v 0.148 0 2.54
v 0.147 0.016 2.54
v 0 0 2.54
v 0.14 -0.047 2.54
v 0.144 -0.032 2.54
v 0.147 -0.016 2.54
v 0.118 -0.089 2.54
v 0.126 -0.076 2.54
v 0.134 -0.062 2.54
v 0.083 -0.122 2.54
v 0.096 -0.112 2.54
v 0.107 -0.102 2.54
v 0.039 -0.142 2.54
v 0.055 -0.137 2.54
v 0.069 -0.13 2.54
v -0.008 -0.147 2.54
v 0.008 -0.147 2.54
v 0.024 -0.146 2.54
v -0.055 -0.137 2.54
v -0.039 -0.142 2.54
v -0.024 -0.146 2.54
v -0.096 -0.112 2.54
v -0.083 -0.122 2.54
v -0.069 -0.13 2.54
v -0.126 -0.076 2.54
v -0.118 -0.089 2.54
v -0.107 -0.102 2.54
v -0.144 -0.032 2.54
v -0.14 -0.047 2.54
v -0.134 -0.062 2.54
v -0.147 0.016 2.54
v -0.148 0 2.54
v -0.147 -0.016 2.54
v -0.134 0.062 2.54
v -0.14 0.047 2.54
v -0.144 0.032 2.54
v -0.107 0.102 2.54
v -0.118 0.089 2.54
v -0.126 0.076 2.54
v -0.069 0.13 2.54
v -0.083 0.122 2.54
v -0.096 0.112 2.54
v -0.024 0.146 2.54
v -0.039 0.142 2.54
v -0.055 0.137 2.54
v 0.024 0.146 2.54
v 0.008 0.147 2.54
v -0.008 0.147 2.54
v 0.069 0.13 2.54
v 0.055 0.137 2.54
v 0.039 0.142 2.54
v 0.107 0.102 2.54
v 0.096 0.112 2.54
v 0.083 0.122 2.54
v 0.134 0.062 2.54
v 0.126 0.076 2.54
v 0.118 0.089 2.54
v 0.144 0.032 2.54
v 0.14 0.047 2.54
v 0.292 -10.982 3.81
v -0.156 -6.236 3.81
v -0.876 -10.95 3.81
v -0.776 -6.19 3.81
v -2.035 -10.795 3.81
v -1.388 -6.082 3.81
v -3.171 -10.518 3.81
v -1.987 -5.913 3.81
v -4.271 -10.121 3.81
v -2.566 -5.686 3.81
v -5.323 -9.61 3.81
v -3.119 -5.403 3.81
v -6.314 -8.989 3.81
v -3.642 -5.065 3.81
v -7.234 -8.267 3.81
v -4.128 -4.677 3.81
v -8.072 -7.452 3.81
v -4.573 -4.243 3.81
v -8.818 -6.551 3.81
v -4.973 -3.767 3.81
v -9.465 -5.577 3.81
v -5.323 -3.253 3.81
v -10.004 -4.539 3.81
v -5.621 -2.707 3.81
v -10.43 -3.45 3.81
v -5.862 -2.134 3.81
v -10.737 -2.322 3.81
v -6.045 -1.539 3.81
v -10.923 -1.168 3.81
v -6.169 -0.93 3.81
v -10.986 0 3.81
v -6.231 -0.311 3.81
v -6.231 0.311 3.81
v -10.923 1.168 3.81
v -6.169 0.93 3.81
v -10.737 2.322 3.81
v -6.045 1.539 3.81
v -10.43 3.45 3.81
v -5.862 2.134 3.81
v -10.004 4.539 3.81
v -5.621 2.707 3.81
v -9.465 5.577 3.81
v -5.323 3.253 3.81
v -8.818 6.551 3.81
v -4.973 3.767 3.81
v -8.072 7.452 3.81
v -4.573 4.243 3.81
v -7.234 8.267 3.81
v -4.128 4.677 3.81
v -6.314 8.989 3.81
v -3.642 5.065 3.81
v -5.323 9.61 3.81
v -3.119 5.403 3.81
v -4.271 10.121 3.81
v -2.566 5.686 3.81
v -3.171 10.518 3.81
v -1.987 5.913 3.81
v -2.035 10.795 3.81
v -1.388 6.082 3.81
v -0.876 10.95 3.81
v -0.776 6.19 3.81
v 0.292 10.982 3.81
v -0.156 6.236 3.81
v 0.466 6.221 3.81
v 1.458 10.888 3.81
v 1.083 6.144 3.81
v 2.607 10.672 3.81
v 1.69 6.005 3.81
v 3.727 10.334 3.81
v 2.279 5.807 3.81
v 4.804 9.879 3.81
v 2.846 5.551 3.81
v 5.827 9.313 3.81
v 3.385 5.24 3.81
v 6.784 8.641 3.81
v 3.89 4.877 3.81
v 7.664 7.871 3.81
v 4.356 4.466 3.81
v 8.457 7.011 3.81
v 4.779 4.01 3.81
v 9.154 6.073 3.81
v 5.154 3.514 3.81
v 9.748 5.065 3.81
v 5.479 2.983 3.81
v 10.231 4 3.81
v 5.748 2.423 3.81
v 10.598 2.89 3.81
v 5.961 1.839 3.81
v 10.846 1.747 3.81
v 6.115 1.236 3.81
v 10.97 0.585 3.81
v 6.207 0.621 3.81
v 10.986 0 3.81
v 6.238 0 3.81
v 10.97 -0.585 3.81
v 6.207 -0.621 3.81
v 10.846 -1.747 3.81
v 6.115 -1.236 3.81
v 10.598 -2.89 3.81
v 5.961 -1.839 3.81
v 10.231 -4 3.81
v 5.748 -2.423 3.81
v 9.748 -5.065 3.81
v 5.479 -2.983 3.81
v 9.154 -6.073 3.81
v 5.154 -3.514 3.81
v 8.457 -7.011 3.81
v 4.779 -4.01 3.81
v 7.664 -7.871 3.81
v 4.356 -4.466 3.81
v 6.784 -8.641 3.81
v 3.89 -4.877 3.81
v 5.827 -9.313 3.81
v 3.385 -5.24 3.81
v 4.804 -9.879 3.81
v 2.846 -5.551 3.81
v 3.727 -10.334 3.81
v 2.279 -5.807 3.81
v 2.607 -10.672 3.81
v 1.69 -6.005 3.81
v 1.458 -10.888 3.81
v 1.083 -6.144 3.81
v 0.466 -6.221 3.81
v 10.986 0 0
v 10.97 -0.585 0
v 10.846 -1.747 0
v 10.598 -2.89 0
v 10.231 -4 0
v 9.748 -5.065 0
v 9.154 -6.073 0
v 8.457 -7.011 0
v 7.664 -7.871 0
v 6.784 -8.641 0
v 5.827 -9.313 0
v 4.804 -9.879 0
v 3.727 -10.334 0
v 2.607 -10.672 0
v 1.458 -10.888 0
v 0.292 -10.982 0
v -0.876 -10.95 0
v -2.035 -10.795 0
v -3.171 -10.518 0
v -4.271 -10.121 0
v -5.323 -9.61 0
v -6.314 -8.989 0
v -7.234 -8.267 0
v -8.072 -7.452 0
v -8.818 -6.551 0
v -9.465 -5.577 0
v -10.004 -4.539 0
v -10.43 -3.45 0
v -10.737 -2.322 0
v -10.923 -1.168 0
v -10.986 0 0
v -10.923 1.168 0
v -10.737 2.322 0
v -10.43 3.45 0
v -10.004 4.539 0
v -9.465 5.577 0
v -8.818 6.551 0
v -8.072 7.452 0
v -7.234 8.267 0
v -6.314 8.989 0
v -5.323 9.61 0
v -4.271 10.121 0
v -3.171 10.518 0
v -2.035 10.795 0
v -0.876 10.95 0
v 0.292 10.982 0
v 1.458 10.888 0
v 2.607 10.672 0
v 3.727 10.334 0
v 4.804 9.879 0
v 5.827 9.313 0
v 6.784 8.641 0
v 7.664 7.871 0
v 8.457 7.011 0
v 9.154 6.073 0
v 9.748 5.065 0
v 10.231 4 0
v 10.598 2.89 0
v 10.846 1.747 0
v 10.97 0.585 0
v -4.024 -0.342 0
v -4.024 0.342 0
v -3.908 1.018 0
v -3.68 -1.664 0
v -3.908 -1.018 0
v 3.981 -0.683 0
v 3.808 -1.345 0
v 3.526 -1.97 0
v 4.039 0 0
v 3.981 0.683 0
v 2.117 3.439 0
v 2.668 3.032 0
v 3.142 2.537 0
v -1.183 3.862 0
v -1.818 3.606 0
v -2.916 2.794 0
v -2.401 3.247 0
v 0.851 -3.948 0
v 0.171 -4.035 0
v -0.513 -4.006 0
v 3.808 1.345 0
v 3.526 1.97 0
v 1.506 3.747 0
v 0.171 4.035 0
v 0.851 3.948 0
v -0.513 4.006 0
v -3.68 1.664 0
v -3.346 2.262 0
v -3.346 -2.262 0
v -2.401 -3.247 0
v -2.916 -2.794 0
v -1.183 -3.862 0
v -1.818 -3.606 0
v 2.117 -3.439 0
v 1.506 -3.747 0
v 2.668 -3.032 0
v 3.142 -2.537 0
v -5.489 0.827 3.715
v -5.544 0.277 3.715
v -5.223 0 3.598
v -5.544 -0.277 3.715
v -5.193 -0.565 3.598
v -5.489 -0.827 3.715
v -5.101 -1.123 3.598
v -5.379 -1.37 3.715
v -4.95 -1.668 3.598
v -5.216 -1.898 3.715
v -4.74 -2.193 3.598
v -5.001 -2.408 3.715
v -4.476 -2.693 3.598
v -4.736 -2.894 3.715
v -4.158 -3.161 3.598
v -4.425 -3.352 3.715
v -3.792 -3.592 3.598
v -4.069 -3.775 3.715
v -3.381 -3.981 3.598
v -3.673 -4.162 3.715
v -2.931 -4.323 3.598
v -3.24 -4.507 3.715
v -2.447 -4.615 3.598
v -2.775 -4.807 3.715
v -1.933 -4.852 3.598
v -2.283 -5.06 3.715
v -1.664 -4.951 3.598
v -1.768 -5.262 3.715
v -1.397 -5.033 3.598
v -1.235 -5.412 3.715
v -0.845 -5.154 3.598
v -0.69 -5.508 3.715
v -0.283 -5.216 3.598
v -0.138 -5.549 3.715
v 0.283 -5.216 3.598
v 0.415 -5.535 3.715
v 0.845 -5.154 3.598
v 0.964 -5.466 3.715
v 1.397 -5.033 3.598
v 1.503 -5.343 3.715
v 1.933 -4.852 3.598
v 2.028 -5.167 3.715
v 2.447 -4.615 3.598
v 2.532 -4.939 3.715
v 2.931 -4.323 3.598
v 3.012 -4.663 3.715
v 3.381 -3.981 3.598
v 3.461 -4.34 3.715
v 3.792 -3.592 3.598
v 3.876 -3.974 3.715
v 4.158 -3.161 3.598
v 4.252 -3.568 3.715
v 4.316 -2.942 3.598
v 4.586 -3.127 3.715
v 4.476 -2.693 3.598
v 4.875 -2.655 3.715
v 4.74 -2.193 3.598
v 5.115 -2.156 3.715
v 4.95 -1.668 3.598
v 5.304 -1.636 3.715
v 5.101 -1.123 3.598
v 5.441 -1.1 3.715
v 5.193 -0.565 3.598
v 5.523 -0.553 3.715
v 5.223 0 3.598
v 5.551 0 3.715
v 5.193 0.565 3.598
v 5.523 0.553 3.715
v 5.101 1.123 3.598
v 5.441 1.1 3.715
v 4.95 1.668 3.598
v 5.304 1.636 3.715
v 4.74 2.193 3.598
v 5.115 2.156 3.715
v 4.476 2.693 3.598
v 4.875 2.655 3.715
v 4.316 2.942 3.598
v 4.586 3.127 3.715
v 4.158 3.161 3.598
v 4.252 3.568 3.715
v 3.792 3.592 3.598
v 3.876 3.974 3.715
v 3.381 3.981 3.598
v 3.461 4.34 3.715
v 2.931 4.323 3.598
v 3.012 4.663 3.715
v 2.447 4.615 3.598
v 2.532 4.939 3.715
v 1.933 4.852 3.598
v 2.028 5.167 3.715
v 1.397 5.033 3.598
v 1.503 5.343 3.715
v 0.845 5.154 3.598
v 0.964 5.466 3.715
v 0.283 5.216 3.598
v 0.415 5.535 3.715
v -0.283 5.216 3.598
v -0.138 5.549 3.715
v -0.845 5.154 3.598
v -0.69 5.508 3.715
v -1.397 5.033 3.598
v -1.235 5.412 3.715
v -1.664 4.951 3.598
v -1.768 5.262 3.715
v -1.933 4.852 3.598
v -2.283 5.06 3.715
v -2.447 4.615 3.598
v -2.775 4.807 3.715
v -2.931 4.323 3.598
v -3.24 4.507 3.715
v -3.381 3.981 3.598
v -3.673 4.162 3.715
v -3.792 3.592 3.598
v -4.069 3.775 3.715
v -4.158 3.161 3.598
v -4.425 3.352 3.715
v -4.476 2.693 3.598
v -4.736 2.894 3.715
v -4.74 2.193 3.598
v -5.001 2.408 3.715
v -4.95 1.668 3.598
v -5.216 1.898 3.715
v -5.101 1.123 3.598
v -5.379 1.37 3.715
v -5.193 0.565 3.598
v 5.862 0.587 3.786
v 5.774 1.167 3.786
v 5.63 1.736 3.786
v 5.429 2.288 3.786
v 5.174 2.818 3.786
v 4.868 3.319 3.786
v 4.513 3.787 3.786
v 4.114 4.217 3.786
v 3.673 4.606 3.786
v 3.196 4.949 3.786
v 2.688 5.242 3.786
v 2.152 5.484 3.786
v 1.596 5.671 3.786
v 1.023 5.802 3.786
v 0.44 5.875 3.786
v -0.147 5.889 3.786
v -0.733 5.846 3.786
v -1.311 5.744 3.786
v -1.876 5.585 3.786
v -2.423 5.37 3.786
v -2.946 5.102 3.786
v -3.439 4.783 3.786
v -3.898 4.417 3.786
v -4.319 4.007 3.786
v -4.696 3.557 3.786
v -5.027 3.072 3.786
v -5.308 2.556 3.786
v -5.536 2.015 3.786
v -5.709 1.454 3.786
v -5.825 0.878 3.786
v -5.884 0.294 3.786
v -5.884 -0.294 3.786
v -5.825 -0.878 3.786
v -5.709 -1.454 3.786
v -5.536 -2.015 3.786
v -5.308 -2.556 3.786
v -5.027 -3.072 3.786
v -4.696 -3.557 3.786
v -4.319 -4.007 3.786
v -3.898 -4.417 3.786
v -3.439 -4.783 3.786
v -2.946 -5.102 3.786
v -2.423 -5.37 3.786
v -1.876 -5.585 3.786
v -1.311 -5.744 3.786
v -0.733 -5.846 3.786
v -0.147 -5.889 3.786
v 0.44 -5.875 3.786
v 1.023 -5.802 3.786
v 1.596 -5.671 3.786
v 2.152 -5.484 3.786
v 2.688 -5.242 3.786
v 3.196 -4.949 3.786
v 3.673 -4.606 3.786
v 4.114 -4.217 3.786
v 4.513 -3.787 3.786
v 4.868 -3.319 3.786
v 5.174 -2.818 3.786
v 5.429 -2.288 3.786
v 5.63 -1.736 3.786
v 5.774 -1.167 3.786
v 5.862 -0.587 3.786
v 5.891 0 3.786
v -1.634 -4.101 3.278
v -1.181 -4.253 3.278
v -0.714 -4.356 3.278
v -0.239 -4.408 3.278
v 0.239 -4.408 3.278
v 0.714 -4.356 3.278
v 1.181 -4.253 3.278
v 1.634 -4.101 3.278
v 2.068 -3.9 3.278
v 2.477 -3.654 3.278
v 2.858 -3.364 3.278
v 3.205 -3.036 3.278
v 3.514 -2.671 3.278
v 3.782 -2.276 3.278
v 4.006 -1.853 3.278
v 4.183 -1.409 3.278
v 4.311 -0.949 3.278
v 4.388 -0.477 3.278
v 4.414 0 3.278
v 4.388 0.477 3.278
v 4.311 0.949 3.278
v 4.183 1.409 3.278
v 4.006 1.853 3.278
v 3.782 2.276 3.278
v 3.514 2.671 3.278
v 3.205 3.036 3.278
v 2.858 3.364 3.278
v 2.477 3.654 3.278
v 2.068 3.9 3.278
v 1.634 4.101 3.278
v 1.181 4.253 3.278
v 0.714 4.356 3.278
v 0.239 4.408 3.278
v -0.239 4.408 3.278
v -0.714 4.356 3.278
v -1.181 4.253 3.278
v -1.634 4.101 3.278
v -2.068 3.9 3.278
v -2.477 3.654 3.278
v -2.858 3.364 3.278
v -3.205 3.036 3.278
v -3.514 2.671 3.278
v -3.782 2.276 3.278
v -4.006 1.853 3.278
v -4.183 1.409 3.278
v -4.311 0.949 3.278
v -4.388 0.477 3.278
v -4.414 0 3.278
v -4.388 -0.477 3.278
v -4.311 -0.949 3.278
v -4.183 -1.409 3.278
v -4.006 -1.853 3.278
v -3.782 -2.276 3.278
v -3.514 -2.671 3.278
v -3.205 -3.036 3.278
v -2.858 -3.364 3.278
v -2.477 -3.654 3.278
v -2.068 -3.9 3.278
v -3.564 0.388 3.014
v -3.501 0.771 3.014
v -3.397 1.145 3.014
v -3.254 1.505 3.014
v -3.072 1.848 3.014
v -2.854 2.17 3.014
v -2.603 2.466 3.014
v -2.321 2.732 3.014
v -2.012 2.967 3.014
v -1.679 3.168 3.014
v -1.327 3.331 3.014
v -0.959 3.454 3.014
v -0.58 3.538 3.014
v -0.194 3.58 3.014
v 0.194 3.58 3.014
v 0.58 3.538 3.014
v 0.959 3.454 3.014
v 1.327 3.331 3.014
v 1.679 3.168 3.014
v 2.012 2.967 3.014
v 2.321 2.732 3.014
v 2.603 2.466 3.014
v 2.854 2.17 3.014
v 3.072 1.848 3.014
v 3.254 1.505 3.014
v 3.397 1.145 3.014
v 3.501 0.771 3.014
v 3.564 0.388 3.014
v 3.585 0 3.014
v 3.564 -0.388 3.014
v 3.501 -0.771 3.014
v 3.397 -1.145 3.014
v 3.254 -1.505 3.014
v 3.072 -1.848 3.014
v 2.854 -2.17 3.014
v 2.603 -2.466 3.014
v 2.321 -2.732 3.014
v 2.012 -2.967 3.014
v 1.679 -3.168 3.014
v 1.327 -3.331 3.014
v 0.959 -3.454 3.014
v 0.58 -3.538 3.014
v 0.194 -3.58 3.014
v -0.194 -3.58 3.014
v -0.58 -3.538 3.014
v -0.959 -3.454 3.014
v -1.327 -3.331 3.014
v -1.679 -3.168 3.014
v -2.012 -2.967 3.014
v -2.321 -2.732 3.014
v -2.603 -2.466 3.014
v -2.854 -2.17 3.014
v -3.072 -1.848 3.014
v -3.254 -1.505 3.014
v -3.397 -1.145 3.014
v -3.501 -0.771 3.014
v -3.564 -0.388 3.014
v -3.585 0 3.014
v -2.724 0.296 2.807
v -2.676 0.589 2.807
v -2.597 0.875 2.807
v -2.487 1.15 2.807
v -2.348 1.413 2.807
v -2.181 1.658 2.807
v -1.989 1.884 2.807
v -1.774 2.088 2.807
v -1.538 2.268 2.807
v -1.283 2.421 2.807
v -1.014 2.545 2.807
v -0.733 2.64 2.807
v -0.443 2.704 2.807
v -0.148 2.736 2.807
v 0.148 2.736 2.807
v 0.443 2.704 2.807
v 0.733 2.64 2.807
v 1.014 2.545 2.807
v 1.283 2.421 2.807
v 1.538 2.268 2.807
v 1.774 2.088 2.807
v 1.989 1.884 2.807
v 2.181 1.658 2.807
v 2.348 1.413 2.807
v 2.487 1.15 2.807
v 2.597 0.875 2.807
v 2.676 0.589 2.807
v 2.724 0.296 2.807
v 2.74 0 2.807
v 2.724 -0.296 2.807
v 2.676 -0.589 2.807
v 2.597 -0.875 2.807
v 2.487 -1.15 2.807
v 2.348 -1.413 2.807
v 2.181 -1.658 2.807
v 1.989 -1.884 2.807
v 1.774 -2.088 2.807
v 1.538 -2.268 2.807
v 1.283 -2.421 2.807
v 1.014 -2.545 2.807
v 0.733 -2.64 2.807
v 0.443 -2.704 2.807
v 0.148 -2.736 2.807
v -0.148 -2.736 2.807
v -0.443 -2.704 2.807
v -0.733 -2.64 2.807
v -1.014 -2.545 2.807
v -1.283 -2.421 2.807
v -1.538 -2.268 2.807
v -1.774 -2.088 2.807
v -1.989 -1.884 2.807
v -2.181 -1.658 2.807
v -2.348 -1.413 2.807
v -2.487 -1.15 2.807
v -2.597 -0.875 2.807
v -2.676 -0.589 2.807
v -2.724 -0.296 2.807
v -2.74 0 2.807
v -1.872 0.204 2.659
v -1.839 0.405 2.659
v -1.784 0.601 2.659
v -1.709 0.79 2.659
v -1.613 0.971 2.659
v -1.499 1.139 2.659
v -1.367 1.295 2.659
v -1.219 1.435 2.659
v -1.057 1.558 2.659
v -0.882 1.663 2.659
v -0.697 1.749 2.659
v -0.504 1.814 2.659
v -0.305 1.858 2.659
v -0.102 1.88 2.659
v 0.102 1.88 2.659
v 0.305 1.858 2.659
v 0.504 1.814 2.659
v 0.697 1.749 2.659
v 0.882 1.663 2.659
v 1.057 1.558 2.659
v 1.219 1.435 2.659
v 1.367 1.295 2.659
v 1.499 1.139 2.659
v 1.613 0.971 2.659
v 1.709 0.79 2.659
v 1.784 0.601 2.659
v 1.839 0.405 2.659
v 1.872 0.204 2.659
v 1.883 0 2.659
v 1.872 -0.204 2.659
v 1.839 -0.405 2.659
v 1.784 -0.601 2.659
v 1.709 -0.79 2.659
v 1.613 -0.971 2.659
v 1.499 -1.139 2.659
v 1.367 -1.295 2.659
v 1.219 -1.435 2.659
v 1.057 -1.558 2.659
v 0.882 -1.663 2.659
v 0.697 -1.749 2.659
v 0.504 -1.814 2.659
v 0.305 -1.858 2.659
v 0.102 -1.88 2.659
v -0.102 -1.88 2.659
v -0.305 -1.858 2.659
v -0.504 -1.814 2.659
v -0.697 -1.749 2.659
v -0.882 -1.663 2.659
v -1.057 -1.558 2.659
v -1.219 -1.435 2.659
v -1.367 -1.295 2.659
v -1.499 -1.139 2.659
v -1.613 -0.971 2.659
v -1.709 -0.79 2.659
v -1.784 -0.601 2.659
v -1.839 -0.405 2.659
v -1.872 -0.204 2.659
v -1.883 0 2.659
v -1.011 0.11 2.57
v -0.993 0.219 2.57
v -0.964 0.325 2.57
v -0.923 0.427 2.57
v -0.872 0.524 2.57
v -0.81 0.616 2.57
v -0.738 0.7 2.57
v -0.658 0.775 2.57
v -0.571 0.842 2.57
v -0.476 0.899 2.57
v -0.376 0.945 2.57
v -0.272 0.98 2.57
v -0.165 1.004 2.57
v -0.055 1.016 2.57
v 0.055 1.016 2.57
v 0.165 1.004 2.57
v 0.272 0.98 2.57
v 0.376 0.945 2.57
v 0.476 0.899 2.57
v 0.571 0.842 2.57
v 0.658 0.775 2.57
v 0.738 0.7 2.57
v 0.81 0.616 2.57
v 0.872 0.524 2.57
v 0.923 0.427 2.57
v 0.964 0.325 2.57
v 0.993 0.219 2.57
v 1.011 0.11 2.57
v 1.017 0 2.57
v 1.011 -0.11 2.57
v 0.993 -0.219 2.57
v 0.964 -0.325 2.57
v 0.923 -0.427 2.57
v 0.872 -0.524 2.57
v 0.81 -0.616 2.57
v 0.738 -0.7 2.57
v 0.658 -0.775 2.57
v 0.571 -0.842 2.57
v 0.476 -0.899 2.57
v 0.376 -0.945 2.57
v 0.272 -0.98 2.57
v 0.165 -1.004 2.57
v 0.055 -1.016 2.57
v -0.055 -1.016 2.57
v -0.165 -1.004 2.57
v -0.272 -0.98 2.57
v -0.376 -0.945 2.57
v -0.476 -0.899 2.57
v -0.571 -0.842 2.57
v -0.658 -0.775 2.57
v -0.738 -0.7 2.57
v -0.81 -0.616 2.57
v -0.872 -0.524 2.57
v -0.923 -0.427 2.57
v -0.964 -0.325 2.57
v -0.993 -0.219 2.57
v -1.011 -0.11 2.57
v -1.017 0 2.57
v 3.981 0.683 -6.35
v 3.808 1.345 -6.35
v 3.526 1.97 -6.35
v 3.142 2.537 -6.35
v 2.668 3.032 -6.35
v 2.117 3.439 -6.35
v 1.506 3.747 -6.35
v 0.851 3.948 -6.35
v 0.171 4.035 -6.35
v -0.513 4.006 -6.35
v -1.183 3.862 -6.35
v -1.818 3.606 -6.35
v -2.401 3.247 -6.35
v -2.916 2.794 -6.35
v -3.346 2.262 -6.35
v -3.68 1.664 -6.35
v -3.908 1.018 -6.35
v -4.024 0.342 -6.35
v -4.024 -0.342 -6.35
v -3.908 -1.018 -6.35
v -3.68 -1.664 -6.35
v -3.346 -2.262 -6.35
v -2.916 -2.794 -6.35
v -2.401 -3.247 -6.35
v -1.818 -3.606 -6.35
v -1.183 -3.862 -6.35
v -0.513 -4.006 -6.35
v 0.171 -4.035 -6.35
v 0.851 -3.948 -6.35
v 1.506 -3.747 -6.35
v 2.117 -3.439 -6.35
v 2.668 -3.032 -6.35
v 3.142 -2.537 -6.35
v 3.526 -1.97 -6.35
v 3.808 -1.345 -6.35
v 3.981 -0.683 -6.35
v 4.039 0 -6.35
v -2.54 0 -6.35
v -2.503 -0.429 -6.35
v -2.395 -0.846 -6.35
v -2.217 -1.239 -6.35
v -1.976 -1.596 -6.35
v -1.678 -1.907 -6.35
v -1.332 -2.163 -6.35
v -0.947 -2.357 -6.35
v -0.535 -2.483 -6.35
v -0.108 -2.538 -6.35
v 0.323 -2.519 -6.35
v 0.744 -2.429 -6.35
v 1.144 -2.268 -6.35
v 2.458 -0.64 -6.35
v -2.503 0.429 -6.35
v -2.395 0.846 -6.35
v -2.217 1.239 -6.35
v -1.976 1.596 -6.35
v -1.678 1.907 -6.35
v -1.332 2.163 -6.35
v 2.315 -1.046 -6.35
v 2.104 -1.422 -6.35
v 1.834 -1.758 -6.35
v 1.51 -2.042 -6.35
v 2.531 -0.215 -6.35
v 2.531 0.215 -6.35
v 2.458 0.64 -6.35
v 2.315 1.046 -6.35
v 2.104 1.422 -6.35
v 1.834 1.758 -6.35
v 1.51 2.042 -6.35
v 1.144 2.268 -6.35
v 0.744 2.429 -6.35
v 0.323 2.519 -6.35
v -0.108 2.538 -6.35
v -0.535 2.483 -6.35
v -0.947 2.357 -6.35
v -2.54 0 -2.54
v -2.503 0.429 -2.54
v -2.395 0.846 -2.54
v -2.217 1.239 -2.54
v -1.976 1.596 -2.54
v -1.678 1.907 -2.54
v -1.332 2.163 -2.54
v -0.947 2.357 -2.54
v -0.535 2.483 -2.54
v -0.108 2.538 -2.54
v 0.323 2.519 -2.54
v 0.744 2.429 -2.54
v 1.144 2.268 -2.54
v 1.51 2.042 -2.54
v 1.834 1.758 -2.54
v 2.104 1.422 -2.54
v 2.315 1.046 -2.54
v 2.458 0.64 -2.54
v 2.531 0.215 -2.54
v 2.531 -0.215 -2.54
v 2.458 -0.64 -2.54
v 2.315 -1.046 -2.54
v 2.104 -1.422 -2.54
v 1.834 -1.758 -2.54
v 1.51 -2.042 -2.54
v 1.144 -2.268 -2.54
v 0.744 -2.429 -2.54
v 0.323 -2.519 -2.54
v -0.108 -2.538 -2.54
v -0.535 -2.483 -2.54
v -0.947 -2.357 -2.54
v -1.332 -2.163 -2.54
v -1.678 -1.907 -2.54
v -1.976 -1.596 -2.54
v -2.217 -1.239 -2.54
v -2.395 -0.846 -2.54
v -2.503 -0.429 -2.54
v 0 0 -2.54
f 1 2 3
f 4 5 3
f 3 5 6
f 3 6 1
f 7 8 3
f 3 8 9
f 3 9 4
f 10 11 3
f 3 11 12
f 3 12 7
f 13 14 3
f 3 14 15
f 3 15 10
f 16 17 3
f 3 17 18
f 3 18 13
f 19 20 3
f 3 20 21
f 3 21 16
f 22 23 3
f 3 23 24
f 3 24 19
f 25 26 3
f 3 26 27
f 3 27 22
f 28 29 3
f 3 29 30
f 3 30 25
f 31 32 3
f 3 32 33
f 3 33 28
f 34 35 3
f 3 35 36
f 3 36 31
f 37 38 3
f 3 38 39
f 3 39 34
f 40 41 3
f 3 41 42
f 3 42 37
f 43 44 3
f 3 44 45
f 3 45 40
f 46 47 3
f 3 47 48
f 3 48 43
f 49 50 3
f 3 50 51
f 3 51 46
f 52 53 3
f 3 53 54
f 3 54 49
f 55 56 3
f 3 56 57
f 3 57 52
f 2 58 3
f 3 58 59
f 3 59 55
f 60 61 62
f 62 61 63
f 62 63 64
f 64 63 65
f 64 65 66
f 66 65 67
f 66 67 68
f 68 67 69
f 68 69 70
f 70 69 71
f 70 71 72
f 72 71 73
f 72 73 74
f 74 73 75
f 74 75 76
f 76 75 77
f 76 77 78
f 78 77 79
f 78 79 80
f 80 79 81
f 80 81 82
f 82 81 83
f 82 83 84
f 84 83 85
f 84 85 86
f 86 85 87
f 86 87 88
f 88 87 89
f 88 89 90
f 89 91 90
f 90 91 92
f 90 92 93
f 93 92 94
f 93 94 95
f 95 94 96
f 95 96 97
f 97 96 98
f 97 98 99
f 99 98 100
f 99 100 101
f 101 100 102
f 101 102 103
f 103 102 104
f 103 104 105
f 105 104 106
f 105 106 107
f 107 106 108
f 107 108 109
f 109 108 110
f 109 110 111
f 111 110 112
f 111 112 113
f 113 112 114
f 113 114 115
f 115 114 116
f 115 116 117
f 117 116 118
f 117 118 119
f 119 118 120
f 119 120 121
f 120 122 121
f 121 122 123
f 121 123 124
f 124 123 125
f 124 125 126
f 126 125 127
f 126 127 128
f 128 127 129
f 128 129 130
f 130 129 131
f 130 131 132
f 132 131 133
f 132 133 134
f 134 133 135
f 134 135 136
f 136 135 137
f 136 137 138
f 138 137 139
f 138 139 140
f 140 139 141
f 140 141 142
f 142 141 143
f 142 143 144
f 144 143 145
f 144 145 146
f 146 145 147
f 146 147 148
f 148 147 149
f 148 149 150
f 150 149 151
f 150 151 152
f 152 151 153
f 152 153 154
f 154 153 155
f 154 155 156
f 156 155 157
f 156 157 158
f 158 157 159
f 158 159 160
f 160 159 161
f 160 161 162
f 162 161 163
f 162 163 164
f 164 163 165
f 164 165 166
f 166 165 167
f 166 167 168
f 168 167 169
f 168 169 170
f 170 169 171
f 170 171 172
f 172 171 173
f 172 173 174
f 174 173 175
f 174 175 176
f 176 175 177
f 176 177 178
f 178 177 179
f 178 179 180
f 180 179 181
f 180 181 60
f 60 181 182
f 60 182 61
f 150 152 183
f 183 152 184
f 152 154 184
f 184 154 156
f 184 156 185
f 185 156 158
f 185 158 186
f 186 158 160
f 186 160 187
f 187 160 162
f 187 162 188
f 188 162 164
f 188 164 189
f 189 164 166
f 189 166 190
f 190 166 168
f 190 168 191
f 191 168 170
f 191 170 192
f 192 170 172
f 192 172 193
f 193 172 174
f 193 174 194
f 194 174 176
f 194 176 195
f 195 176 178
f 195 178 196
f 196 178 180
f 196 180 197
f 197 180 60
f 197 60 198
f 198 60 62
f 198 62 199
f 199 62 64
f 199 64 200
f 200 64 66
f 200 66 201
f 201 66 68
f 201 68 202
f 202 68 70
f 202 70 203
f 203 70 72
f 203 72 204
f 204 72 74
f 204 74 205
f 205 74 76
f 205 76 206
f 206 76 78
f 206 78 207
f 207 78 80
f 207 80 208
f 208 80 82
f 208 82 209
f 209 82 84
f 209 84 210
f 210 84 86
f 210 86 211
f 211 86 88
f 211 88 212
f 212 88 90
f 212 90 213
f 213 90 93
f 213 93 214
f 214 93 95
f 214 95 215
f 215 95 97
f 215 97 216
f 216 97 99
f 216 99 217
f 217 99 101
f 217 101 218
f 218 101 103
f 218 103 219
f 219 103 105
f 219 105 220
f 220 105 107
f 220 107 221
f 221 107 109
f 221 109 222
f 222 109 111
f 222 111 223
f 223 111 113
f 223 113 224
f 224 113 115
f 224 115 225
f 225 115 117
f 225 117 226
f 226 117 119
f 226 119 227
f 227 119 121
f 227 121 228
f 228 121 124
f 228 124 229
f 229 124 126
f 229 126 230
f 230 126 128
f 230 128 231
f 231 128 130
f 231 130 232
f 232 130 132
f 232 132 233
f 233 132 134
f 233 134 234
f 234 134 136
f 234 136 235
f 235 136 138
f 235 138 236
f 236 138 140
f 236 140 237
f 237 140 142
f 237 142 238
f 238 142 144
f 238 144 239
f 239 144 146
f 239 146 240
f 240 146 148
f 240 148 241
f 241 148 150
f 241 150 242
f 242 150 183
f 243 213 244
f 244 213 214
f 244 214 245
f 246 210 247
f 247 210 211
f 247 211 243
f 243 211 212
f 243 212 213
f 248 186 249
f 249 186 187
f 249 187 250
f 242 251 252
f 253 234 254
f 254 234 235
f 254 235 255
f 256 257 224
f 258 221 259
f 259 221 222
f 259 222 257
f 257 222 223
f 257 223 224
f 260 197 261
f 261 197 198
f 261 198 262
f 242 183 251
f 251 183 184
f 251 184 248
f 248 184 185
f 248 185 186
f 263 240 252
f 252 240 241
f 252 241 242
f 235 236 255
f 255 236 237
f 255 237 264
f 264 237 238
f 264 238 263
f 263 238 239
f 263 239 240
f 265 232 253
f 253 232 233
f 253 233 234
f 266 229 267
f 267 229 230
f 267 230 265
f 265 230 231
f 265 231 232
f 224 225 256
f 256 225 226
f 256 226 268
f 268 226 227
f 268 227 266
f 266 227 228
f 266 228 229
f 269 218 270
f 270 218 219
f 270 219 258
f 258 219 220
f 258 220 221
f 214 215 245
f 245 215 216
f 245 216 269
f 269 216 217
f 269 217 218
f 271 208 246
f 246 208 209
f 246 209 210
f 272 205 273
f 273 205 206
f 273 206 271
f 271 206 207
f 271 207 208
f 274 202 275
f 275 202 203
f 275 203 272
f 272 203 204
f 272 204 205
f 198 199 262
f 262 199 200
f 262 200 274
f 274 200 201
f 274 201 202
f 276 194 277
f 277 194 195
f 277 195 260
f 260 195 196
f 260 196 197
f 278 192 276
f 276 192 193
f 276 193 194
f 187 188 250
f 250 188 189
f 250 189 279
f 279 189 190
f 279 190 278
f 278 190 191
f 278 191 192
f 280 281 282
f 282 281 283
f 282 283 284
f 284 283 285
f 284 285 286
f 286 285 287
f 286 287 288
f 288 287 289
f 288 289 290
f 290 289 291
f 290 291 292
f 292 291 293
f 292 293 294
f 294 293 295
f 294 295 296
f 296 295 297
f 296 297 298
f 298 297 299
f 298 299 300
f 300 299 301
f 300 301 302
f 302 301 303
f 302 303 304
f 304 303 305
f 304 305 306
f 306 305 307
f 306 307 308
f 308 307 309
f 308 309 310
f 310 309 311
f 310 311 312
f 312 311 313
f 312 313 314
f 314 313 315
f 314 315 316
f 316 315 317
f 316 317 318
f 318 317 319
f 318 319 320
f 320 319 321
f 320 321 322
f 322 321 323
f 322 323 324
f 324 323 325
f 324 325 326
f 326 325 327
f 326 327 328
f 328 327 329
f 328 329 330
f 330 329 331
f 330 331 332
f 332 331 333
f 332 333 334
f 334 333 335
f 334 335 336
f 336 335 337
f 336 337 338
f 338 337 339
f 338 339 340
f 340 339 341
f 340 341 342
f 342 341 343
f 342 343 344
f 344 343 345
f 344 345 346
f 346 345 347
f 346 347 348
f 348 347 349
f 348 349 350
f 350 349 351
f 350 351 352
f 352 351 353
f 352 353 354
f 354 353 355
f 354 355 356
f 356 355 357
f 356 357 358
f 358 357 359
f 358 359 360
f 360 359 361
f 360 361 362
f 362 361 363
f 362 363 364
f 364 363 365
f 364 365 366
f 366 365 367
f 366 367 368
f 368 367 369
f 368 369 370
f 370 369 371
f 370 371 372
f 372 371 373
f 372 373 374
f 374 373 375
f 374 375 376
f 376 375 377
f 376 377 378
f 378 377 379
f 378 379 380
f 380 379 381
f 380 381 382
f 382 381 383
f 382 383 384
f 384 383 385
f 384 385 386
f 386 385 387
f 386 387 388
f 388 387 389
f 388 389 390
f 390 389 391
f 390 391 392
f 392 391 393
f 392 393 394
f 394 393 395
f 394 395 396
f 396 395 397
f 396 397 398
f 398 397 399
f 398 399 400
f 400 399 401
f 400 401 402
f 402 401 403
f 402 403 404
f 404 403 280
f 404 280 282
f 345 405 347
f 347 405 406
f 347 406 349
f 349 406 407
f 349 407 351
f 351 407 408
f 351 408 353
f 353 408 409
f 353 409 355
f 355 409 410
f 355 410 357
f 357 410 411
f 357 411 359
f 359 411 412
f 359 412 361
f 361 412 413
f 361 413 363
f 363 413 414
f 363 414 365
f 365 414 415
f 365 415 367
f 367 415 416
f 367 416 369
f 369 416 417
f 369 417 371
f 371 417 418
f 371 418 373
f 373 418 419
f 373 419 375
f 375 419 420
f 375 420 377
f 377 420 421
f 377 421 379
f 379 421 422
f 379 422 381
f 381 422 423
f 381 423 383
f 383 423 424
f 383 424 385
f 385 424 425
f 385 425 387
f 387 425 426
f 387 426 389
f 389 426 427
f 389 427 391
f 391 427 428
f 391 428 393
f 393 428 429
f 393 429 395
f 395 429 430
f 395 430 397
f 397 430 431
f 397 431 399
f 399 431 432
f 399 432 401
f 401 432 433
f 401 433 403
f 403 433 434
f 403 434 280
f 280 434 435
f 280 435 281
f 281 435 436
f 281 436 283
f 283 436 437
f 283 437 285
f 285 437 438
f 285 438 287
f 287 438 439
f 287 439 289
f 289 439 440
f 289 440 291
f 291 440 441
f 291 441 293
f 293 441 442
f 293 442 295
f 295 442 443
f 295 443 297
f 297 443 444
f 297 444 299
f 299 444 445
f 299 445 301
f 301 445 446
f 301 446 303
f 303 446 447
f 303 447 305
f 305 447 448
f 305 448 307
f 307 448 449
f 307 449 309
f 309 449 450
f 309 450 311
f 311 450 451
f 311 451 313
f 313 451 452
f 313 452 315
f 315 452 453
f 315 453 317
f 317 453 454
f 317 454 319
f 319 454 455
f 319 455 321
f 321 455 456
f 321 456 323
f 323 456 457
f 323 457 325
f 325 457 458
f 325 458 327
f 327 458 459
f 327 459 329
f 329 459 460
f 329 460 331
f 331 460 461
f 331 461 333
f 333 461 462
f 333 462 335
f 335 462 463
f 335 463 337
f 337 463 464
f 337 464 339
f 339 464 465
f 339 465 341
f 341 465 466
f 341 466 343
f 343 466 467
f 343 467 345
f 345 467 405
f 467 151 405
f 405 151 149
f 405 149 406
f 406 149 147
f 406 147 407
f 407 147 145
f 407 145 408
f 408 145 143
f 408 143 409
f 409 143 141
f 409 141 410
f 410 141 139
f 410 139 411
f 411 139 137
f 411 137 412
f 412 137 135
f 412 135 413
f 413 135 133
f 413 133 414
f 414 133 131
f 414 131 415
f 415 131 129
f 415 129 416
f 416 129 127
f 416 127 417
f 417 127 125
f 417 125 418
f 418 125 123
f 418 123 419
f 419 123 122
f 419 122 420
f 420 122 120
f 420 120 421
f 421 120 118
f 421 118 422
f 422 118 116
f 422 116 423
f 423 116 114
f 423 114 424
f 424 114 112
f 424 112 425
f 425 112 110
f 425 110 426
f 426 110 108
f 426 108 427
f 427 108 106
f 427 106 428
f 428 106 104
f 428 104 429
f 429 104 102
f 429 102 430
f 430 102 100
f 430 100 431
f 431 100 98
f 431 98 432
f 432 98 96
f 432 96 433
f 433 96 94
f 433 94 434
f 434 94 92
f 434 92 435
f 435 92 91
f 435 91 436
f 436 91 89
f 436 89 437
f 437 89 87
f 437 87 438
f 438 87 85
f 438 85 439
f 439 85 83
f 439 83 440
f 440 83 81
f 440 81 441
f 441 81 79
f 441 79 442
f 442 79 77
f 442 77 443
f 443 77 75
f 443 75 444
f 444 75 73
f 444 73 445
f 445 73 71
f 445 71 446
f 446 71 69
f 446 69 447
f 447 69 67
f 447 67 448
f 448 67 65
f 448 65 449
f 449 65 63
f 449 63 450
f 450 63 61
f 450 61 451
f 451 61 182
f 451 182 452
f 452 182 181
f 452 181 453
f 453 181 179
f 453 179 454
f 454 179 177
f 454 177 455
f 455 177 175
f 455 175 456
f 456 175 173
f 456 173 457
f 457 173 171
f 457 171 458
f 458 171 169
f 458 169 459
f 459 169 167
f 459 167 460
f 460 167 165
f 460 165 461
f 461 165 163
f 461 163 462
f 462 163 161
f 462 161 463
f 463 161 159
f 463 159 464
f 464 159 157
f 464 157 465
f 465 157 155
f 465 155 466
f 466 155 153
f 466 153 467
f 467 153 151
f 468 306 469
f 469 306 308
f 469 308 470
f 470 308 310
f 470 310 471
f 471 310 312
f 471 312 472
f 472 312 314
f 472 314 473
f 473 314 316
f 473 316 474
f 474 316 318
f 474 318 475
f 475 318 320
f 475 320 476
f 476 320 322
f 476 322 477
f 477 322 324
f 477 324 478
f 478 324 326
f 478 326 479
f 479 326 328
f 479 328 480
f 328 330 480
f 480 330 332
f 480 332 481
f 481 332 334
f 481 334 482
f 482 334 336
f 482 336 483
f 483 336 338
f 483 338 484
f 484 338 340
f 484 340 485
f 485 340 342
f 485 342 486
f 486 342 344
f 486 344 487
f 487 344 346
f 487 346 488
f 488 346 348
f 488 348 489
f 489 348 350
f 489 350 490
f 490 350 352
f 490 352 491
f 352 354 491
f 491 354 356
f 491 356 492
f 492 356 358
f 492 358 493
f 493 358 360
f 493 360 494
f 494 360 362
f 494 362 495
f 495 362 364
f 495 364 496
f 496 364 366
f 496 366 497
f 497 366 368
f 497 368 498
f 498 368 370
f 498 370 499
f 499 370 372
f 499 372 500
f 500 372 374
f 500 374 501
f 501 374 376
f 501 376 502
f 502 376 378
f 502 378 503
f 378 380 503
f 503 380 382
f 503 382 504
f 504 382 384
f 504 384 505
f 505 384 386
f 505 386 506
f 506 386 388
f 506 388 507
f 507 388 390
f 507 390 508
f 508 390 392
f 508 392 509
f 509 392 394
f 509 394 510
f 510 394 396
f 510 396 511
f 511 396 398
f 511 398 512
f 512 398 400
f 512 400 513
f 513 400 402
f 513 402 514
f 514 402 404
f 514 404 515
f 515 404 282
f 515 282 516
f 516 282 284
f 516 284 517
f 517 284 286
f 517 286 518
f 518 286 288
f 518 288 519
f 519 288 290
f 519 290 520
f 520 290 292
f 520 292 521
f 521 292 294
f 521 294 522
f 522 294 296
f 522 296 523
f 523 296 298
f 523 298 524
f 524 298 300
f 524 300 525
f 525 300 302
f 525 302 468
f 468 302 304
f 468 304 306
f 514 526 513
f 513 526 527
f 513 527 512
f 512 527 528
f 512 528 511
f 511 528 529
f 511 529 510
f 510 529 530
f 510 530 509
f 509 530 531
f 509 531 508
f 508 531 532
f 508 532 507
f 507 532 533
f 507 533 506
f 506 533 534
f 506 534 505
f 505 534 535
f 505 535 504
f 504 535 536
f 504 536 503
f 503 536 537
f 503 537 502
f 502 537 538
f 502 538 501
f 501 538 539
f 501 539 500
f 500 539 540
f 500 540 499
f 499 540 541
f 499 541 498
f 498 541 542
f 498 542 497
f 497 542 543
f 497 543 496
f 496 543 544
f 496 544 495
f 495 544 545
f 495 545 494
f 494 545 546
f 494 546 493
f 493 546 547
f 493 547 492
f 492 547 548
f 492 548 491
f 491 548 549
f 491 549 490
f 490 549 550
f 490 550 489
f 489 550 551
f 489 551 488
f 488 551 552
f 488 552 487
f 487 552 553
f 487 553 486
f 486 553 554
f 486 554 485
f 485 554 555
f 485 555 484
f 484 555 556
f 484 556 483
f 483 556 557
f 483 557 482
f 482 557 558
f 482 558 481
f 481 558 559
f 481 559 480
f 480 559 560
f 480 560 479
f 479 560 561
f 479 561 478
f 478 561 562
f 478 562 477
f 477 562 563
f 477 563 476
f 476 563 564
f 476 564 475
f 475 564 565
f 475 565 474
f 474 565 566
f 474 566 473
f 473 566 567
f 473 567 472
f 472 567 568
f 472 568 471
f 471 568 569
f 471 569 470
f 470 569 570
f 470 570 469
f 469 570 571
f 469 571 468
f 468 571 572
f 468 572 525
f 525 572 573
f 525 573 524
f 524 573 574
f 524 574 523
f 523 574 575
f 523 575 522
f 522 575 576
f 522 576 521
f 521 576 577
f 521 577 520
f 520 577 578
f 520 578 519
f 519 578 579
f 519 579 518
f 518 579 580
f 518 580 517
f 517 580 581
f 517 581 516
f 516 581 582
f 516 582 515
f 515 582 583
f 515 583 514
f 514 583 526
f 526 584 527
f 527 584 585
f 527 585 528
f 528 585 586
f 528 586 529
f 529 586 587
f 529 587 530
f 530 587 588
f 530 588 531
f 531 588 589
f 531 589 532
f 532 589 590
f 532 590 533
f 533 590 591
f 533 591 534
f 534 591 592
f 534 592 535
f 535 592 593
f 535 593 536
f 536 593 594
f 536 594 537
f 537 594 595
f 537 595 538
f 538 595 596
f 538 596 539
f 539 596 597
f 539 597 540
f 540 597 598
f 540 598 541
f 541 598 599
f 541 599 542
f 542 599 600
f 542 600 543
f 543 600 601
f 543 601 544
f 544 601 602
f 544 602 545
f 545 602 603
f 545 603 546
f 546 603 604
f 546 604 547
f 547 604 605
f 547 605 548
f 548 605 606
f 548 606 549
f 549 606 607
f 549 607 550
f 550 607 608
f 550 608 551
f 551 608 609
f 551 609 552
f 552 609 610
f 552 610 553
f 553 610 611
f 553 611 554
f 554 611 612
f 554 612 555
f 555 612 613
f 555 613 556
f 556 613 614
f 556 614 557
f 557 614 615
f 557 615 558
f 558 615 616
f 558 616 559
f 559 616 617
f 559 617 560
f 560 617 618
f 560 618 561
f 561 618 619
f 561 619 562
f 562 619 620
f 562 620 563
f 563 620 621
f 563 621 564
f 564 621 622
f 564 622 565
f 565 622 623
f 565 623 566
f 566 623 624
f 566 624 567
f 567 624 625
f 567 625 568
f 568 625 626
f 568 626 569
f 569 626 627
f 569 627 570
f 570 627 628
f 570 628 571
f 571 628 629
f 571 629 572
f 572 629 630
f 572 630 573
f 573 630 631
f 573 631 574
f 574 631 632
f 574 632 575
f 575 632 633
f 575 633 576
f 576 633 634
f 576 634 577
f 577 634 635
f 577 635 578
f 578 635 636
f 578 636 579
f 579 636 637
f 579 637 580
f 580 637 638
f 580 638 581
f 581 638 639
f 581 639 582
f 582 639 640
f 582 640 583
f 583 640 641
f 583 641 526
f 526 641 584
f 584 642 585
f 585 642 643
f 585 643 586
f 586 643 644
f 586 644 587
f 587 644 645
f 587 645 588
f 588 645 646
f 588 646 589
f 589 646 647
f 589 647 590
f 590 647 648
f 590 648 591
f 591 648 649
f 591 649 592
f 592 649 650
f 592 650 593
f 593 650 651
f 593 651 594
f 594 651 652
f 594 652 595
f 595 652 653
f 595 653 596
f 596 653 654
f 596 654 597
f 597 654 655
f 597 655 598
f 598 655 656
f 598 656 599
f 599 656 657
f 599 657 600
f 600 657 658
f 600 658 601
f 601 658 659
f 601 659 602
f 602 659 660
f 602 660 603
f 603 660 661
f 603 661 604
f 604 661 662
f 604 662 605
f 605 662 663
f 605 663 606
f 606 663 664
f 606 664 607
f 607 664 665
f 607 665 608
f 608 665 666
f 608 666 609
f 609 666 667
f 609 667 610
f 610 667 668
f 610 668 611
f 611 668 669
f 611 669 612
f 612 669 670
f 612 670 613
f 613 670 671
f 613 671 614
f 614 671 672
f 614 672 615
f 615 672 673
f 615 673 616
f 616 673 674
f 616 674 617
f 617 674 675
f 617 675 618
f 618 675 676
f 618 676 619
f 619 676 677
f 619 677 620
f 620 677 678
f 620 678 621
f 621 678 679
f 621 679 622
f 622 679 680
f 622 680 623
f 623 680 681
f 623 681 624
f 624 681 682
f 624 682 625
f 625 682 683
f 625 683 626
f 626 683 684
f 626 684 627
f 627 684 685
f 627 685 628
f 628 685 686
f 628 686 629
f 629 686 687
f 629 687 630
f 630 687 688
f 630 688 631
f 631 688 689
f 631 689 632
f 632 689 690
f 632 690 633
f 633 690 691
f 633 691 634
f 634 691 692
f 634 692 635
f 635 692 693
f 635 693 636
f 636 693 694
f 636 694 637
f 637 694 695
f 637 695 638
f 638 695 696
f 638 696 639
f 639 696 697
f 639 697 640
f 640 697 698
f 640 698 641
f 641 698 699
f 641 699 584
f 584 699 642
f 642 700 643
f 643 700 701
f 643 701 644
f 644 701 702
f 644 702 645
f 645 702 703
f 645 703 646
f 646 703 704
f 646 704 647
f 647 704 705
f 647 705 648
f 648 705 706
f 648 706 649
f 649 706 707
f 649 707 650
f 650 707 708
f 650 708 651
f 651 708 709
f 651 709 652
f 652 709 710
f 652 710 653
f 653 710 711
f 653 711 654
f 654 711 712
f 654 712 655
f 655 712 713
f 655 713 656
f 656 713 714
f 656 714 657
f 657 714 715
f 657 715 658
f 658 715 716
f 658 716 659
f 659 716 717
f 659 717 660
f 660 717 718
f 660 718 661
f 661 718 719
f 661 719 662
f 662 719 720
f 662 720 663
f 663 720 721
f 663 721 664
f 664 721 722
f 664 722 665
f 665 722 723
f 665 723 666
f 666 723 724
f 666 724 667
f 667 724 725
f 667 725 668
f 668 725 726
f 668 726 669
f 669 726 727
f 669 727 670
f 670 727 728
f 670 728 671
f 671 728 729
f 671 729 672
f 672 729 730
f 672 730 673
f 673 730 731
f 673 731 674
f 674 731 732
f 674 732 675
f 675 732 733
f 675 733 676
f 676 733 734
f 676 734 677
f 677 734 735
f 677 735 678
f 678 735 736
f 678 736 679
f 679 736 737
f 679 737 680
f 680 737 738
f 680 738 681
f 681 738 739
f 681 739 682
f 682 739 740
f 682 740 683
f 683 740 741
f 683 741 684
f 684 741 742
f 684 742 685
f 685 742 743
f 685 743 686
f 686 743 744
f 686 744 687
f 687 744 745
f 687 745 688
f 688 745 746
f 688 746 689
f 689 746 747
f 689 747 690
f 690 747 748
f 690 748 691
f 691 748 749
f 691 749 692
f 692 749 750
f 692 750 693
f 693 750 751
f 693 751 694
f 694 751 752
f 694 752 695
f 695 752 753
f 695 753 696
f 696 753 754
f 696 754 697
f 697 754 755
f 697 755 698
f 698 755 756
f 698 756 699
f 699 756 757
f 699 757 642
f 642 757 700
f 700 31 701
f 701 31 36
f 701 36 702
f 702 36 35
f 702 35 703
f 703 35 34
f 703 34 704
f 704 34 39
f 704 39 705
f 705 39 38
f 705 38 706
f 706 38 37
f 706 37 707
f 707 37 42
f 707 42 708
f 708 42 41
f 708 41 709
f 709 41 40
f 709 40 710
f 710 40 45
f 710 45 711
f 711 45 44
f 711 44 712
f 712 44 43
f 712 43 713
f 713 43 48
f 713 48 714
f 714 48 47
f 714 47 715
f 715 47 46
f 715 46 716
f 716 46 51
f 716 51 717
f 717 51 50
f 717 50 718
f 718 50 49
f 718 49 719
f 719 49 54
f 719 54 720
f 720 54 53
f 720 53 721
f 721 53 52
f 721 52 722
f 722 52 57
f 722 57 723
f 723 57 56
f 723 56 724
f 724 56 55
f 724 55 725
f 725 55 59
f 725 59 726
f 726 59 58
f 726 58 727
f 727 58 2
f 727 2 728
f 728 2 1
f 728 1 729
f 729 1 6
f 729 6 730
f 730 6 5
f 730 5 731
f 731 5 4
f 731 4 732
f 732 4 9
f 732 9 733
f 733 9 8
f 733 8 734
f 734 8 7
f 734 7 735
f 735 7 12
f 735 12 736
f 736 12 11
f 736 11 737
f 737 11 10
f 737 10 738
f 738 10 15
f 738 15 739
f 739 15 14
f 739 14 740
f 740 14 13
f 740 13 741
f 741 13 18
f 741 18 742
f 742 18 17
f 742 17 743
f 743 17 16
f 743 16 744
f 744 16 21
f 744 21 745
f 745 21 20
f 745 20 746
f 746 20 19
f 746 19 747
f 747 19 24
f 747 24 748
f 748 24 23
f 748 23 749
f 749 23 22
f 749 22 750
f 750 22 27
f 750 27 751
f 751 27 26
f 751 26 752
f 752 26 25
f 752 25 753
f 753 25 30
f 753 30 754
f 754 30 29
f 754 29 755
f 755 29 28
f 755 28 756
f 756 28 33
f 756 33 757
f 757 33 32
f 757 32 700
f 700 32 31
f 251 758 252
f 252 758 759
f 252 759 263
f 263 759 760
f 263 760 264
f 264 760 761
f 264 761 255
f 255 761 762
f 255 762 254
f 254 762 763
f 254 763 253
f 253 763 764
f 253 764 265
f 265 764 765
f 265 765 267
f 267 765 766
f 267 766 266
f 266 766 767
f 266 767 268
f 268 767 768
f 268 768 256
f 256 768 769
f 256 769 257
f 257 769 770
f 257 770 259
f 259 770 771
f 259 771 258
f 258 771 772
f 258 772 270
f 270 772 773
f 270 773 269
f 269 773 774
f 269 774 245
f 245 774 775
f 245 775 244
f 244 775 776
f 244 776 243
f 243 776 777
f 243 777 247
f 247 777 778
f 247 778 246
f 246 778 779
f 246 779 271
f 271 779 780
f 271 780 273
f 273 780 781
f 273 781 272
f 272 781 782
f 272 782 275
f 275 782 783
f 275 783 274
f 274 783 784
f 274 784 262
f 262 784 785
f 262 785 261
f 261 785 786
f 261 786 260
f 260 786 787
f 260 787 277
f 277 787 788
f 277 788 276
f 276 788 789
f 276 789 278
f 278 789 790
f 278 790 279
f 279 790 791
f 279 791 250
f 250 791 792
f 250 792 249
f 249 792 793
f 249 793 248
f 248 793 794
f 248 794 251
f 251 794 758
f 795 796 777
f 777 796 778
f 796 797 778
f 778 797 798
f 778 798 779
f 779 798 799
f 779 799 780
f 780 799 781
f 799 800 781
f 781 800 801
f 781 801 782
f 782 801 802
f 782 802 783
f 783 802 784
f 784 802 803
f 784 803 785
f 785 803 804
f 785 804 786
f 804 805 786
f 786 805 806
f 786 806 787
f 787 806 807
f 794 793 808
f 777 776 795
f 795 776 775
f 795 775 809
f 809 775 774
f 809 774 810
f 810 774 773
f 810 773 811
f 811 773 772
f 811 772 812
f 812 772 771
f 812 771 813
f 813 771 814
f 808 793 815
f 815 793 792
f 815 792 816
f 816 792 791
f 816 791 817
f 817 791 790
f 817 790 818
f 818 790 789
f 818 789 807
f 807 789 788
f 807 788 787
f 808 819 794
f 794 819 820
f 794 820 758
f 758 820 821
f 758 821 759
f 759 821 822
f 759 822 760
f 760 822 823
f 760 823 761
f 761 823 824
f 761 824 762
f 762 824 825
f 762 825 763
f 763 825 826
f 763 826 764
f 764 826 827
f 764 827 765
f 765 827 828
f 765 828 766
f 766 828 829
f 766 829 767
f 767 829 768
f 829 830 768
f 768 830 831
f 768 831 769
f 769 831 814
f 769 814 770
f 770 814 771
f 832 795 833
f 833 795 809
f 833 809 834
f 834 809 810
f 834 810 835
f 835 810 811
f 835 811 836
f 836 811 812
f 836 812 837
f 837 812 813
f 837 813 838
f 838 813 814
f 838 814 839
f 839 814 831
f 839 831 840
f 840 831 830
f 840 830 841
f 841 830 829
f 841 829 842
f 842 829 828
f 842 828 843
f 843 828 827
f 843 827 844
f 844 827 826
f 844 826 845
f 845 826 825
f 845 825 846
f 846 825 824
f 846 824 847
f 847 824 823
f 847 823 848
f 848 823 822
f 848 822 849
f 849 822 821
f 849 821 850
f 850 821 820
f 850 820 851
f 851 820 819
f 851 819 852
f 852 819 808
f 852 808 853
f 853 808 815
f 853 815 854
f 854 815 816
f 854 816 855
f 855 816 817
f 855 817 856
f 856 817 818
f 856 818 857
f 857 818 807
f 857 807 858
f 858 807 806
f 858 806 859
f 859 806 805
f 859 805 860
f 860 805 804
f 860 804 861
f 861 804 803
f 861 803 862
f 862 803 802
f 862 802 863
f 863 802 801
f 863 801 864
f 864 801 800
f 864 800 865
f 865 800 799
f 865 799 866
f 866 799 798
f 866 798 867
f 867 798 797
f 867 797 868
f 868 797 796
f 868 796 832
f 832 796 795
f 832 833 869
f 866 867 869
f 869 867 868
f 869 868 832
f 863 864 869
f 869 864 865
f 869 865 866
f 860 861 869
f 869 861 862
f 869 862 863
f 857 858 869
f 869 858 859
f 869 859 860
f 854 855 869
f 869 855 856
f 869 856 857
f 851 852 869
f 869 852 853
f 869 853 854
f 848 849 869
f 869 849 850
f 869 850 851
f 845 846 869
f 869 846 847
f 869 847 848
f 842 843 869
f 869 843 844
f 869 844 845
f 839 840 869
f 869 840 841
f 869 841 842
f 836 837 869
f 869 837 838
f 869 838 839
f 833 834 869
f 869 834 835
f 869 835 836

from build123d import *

# Parameters (mm, degrees)
SKETCH1_R           = 4.0386
BOSS_EXTRUDE1_DEPTH = 2.54
SKETCH1_4_R         = 10.9855
SKETCH1_4_R_2       = 4.0386
BOSS_EXTRUDE2_DEPTH = 3.81
FILLET1_R           = 2.54
FILLET2_R           = 12.7
SKETCH1_6_R         = 4.0386
BOSS_EXTRUDE3_DEPTH = 6.35
SKETCH3_R           = 2.54
CUT_EXTRUDE1_DEPTH  = 3.81


with BuildPart() as part:
    # Sketch1 → Boss-Extrude1 (new body)
    with BuildSketch(Plane.XY):
        Circle(SKETCH1_R)
    extrude(amount=BOSS_EXTRUDE1_DEPTH)

    # Sketch1<4> → Boss-Extrude2 (add)
    with BuildSketch(Plane.XY):
        with Locations(Location((0, 0, 0), (0, 0, 180))):
            Circle(SKETCH1_4_R)
        with Locations(Location((0, 0, 0), (0, 0, 180))):
            Circle(SKETCH1_4_R_2, mode=Mode.SUBTRACT)
    extrude(amount=BOSS_EXTRUDE2_DEPTH)

    # Fillet1
    # the kernel refuses this fillet: 2.54 mm, written as the material it takes off along each edge
    with BuildSketch(Plane(origin=(0, 0, 3.81), x_dir=(-1, 0, 0), z_dir=(0, 1, 0))) as fillet1_piece_1:
        with BuildLine():
            CenterArc((6.238304526, -2.54), FILLET1_R, 90, 60)
            Line((4.0386, -1.27), (3.994605909, -1.2446))
            ThreePointArc((3.994605909, -1.2446), (3.9878, -0.635), (3.9878, 0))
            Line((3.9878, 0), (4.0386, 0.0508))
            Line((4.0386, 0.0508), (6.238304526, 0.0508))
            Line((6.238304526, 0.0508), (6.238304526, 0))
        make_face()
    revolve(axis=Axis((0, 0, 3.81), (0, 0, 1)), mode=Mode.SUBTRACT)

    # Fillet2
    fillet2_edges = [part.edges().sort_by_distance(p)[0] for p in [
        (4.0386, 0, 2.54),
    ]]
    fillet(fillet2_edges, radius=FILLET2_R)

    # Sketch1<6> → Boss-Extrude3 (add)
    with BuildSketch(Plane.XY):
        Circle(SKETCH1_6_R)
    extrude(amount=-BOSS_EXTRUDE3_DEPTH)

    # Sketch3 → Cut-Extrude1 (cut)
    with BuildSketch(Plane(origin=(0, 0, -6.35), x_dir=(-1, 0, 0), z_dir=(0, 0, -1))):
        Circle(SKETCH3_R)
    extrude(amount=-CUT_EXTRUDE1_DEPTH, mode=Mode.SUBTRACT)


solid = part.part
